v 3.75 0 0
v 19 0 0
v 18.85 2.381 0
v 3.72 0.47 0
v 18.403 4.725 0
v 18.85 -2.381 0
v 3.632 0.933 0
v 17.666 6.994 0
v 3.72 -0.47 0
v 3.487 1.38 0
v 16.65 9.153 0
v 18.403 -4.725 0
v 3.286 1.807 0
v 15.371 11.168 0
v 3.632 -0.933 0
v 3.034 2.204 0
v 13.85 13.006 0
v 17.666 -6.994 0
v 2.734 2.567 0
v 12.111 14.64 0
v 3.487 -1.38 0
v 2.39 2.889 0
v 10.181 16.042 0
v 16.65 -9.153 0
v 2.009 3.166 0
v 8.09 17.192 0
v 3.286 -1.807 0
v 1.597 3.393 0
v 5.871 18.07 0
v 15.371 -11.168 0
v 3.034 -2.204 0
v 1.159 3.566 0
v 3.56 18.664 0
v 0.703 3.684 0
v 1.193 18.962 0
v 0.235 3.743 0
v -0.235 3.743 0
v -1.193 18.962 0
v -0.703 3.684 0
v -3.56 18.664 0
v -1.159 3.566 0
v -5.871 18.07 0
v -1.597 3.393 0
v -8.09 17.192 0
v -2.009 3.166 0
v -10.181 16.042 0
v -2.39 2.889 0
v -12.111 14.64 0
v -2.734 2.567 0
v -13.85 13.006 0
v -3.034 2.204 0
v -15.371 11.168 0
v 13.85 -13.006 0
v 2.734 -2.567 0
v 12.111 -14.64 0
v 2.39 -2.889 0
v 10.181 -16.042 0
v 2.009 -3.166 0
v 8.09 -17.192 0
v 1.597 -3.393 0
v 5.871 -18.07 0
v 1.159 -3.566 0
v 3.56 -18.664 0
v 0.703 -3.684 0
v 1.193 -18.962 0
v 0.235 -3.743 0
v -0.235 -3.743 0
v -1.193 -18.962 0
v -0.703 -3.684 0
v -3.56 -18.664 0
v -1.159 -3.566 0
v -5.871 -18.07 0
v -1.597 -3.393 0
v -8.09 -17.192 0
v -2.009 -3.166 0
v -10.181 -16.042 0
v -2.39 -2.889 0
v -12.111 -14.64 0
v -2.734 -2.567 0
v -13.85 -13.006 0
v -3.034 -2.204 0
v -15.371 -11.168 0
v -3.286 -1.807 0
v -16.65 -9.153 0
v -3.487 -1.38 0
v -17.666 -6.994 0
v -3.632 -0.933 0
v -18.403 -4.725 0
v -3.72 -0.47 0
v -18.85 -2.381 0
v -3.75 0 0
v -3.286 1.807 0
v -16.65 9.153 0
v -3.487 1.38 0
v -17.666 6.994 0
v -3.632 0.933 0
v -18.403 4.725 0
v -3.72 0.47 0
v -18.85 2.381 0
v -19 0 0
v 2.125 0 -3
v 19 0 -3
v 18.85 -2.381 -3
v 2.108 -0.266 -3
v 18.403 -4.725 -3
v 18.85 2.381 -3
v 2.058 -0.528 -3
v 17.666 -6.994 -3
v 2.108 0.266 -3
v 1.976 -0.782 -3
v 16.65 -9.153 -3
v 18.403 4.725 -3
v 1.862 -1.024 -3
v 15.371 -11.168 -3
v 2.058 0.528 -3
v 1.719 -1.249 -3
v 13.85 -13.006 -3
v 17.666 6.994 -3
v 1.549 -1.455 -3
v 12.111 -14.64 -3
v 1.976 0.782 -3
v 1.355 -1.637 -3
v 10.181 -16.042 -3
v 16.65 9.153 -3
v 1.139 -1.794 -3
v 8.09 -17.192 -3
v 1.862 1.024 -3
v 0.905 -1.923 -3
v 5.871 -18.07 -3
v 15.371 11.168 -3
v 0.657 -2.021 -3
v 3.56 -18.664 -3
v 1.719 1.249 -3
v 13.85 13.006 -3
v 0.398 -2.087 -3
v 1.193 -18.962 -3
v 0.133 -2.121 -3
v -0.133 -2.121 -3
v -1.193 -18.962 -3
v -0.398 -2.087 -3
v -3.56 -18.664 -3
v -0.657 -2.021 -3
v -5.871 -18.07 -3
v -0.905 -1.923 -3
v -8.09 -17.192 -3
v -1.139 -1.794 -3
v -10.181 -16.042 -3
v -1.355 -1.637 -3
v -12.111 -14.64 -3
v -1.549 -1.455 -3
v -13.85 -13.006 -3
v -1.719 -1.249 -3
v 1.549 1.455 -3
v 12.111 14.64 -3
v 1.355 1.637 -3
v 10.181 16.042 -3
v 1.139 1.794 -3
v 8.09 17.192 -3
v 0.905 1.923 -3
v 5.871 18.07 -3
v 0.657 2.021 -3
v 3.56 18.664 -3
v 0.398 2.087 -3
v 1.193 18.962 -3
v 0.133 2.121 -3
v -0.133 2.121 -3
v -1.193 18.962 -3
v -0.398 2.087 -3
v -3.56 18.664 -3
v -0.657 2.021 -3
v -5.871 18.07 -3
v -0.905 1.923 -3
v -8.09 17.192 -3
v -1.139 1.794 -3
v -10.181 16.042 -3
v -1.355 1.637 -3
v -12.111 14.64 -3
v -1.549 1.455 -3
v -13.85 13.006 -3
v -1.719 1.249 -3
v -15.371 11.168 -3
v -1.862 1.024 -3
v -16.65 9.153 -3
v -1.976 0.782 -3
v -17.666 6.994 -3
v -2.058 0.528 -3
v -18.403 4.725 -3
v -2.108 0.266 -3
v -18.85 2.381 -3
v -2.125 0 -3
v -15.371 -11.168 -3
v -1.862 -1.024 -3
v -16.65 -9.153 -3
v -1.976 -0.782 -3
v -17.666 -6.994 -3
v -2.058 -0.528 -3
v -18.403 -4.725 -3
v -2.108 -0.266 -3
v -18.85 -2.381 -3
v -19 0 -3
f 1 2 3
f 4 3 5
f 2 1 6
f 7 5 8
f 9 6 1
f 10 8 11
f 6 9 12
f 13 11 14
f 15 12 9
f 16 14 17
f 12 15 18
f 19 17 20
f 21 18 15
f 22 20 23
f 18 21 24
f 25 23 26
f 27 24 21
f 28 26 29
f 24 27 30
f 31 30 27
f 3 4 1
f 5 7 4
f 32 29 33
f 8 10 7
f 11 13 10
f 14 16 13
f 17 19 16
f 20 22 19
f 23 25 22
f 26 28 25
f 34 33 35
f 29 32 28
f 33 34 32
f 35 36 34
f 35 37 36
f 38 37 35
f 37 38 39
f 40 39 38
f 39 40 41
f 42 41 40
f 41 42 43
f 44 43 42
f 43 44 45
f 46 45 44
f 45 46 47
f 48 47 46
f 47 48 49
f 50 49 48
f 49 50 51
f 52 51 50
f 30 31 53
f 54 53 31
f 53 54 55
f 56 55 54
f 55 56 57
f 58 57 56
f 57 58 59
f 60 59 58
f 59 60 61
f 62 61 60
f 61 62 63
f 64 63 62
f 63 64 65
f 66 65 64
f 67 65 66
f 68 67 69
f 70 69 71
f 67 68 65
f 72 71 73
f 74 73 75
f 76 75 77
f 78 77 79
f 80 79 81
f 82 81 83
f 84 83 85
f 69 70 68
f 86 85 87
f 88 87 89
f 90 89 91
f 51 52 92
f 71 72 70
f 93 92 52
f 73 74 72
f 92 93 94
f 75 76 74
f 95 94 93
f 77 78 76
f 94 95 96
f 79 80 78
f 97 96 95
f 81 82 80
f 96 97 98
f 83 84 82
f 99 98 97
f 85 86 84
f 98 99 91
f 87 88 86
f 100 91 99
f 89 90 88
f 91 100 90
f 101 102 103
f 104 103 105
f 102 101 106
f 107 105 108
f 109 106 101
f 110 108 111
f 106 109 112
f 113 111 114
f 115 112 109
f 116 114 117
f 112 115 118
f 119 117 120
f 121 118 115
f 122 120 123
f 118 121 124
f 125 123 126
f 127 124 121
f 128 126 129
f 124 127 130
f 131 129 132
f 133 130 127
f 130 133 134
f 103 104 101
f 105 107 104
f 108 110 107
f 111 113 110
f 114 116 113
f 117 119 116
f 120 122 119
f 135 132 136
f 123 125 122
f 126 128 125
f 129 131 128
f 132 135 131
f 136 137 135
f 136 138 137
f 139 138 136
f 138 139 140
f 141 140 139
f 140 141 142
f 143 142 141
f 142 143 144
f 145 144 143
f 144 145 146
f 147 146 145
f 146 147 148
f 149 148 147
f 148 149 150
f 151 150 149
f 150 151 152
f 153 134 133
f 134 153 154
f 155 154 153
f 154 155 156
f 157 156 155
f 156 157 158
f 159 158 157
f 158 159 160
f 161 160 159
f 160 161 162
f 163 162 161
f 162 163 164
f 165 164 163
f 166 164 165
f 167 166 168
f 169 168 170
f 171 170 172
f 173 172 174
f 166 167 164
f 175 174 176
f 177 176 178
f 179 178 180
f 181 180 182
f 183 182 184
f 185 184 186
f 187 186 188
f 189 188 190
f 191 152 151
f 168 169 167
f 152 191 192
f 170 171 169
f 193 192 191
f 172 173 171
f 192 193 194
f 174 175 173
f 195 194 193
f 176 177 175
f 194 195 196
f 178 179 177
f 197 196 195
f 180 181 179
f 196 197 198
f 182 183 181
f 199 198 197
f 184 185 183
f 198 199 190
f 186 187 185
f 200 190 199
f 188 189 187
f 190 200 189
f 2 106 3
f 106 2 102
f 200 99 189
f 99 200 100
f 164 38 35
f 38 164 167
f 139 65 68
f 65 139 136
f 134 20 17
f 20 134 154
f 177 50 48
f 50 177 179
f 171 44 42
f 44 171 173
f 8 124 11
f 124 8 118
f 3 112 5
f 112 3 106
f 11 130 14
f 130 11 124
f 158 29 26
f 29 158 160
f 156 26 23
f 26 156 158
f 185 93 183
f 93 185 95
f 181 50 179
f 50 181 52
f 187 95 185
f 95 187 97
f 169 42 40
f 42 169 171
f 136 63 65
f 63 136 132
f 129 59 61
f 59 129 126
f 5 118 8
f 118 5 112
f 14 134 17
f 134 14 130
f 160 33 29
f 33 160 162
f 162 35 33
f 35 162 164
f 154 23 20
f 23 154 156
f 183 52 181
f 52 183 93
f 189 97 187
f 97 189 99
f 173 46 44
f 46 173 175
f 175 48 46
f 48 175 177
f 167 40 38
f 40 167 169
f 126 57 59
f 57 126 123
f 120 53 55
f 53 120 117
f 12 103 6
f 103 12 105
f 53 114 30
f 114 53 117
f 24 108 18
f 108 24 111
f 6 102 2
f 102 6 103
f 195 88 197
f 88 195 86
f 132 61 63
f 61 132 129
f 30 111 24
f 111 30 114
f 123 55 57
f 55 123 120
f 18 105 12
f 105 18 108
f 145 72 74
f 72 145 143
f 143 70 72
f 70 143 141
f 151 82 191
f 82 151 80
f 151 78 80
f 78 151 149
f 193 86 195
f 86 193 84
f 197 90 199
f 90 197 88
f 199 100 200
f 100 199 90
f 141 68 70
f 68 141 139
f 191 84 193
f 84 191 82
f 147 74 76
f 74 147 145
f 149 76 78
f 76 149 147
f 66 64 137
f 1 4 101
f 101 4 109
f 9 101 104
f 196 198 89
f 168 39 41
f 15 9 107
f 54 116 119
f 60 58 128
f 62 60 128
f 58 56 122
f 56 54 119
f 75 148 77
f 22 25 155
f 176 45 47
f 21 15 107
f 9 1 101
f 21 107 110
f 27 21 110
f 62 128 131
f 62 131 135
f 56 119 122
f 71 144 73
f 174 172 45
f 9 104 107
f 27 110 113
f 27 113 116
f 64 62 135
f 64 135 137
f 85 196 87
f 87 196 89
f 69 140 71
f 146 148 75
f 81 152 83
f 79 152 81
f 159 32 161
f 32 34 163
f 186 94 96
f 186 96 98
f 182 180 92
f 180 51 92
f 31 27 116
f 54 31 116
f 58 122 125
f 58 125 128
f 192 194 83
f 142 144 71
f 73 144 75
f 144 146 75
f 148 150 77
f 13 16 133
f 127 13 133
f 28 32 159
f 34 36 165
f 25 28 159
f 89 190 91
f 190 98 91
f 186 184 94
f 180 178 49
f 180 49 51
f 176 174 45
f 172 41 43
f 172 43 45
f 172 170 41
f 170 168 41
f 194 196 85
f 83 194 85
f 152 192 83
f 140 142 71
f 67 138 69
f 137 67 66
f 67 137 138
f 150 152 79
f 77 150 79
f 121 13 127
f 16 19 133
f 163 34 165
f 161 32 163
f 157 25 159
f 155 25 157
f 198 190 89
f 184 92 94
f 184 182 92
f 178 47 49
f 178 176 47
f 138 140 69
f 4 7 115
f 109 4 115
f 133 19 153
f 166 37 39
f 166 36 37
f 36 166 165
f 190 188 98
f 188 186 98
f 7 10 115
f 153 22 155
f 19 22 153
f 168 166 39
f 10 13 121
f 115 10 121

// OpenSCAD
$fn = 50;


difference() {
	union() {
		translate(v = [0, 0, -3.0000000000]) {
			cylinder(h = 3, r = 10.0000000000);
		}
		translate(v = [0, 0, -3.0000000000]) {
			cylinder(h = 3, r = 19.0000000000);
		}
	}
	union() {
		translate(v = [0, 0, 0]) {
			rotate(a = [0, 0, 0]) {
				difference() {
					union() {
						#translate(v = [0, 0, -3.0000000000]) {
							cylinder(h = 3, r = 2.0000000000);
						}
						#translate(v = [0, 0, -3]) {
							cylinder(h = 3, r1 = 2.1250000000, r2 = 3.7500000000);
						}
						#translate(v = [0, 0, -3.0000000000]) {
							cylinder(h = 3, r = 2.1250000000);
						}
						#translate(v = [0, 0, -3.0000000000]) {
							cylinder(h = 3, r = 2.0000000000);
						}
					}
					union();
				}
			}
		}
	}
}
